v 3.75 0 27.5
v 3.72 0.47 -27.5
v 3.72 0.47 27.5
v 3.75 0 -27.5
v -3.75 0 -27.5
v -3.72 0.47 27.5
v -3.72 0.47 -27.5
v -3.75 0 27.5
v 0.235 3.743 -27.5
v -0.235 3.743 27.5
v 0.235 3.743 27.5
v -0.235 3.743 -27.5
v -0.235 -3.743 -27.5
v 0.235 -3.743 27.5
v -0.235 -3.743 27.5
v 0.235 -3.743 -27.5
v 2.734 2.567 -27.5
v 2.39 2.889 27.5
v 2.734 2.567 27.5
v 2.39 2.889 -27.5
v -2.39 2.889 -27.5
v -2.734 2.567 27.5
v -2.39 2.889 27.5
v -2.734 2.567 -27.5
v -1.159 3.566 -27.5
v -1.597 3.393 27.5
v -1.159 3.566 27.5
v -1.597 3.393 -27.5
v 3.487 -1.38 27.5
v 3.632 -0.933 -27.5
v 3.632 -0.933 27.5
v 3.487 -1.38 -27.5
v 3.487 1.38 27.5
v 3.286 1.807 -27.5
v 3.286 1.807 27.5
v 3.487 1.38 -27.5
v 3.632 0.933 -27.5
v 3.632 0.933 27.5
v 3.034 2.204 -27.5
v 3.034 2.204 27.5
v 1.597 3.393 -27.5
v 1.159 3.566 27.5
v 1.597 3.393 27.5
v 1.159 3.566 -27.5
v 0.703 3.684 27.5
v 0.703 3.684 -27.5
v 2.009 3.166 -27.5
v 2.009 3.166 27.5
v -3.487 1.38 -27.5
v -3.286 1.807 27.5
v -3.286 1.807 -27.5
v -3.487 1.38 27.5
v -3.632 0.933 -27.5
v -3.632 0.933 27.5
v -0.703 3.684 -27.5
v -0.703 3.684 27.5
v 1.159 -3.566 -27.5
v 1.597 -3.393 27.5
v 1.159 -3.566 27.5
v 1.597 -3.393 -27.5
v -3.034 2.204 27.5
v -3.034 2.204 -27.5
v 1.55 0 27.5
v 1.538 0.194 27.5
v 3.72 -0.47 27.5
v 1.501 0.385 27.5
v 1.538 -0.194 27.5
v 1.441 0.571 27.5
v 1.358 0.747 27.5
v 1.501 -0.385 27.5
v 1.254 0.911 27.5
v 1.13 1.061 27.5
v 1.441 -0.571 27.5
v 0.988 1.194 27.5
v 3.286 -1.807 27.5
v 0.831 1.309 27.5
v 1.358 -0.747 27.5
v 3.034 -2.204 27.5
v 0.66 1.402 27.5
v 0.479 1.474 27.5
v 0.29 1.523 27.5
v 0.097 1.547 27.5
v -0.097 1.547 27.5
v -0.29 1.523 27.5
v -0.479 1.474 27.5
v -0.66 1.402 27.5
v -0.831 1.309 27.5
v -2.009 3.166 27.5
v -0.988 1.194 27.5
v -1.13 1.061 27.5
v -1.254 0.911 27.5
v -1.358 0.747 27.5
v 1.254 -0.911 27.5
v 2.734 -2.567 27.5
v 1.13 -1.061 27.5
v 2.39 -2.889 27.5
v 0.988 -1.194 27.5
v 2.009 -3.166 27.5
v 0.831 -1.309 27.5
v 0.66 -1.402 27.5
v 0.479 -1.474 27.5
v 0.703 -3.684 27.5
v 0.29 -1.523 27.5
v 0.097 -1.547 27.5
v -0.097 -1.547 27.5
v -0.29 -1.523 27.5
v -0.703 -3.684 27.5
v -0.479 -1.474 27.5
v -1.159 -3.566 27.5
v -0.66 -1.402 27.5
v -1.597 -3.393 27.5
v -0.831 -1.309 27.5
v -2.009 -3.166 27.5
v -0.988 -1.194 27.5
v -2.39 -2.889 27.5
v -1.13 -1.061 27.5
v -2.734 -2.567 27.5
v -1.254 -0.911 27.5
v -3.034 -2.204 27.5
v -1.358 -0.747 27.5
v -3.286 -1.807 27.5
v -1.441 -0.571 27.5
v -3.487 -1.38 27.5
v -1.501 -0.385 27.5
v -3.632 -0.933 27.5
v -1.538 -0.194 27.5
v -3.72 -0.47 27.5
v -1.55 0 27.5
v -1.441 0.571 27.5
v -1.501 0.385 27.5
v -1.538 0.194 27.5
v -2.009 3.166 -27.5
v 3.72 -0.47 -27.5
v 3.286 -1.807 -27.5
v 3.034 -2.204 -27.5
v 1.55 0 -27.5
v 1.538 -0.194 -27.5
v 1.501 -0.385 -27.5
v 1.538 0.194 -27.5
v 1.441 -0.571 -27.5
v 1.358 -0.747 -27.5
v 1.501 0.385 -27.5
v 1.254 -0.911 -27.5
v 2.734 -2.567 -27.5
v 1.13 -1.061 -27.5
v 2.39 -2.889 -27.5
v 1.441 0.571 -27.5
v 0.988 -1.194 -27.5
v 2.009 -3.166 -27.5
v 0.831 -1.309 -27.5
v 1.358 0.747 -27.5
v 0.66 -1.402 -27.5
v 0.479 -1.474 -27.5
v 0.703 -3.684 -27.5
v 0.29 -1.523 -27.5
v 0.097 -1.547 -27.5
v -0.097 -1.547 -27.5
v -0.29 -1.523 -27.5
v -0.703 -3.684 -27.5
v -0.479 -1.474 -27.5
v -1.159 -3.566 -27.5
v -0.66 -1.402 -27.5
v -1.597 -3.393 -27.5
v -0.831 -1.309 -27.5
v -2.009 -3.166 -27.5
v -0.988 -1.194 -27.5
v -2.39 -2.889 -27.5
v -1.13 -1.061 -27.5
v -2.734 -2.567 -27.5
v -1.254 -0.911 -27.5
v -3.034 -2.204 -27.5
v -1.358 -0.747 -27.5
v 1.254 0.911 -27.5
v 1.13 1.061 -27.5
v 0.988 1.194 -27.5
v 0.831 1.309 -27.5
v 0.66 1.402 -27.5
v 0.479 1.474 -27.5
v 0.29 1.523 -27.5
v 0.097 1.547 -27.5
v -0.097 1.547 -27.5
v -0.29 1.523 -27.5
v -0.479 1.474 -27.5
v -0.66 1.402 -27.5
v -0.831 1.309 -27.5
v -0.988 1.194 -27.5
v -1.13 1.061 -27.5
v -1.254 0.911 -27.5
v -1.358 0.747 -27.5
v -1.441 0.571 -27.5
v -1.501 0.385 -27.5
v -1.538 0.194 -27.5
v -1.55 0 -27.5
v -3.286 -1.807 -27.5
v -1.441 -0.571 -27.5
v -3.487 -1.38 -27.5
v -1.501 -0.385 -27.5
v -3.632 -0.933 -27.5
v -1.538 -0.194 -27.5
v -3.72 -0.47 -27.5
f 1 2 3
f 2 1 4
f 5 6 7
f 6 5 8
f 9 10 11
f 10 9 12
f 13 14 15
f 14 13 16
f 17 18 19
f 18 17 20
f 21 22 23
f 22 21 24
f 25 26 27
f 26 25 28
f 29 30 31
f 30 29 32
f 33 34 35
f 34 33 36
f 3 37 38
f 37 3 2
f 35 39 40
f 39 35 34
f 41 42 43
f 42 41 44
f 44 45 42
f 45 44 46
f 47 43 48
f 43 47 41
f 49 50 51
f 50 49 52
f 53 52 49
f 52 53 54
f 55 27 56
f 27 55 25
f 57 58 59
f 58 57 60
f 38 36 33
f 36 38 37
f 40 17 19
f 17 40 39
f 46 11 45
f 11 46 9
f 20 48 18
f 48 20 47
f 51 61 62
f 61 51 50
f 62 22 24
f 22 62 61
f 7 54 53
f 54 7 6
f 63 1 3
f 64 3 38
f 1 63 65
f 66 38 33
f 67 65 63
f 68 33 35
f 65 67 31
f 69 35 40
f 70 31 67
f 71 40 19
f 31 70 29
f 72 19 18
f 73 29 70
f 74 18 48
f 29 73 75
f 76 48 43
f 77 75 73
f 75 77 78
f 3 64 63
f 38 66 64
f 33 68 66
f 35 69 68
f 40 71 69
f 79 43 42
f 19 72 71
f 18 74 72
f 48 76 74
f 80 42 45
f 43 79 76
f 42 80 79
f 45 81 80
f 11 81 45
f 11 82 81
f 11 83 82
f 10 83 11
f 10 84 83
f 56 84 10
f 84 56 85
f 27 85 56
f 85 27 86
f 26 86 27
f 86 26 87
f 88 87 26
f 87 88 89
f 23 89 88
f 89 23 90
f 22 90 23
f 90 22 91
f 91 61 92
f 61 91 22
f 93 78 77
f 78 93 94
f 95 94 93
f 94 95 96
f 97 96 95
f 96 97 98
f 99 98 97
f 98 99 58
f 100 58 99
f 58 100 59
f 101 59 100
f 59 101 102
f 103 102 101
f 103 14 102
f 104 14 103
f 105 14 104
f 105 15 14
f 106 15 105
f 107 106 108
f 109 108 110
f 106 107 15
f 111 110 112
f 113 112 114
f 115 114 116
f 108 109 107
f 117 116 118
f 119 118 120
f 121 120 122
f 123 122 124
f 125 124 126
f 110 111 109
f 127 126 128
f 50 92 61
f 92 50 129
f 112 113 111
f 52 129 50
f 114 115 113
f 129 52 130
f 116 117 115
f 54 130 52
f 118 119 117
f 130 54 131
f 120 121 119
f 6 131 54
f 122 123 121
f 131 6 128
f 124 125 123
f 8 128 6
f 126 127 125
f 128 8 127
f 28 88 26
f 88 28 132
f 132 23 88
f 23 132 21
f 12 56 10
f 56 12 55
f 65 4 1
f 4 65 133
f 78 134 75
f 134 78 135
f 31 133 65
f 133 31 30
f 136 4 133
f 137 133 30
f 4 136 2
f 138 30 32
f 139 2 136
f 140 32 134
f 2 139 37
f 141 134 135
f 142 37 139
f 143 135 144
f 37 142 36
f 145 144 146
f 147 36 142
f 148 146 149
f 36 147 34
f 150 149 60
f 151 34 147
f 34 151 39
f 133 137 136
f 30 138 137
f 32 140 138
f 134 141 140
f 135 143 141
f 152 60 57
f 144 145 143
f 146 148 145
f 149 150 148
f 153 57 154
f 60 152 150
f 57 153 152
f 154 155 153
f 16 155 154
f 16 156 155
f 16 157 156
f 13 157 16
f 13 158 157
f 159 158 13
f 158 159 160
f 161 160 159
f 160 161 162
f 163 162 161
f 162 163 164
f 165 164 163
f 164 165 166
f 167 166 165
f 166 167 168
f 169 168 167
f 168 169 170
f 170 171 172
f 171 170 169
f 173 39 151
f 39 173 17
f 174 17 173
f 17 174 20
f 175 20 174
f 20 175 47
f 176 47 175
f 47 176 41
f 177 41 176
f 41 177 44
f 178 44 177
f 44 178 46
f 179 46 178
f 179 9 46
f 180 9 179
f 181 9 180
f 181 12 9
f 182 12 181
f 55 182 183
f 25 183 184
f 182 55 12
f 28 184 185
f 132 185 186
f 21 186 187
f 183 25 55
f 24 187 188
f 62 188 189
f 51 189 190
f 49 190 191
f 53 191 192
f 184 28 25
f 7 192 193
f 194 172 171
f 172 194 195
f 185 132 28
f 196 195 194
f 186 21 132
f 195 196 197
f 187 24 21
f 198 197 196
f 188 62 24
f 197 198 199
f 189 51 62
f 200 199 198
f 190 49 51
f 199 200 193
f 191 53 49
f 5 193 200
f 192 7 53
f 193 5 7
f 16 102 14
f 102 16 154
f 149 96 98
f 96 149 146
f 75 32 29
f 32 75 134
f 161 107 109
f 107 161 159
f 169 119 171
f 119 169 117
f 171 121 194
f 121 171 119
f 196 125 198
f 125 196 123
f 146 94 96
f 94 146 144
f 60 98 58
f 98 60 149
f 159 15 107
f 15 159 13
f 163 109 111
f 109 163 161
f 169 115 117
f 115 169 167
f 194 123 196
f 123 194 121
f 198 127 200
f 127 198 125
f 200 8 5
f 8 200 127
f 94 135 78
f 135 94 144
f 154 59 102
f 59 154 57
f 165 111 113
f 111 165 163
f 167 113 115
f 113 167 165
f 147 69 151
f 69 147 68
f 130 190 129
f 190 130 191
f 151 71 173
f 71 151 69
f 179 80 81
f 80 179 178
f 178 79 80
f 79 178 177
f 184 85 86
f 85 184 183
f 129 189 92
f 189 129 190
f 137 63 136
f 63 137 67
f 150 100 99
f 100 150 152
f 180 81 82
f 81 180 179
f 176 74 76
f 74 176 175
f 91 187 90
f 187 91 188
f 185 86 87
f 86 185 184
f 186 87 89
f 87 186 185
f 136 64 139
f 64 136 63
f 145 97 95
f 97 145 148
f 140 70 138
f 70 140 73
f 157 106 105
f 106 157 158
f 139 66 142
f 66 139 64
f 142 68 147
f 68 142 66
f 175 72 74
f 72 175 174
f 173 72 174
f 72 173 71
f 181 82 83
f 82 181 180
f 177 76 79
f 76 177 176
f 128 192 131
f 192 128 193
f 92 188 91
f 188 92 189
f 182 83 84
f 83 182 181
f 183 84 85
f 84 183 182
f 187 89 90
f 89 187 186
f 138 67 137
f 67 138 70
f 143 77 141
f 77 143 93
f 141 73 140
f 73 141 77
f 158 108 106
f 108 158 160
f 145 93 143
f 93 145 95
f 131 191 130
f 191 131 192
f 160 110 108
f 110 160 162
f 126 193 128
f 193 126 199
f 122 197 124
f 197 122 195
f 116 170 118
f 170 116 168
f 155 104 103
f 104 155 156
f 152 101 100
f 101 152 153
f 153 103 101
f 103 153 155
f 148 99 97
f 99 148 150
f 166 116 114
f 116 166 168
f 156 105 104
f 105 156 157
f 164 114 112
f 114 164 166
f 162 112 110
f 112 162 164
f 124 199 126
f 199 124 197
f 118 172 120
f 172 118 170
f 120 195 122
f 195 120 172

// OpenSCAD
$fn = 50;


difference() {
	union() {
		translate(v = [0, 0, -27.5000000000]) {
			cylinder(h = 55, r = 3.7500000000);
		}
	}
	union() {
		translate(v = [0, 0, -100.0000000000]) {
			cylinder(h = 200, r = 1.5500000000);
		}
	}
}
